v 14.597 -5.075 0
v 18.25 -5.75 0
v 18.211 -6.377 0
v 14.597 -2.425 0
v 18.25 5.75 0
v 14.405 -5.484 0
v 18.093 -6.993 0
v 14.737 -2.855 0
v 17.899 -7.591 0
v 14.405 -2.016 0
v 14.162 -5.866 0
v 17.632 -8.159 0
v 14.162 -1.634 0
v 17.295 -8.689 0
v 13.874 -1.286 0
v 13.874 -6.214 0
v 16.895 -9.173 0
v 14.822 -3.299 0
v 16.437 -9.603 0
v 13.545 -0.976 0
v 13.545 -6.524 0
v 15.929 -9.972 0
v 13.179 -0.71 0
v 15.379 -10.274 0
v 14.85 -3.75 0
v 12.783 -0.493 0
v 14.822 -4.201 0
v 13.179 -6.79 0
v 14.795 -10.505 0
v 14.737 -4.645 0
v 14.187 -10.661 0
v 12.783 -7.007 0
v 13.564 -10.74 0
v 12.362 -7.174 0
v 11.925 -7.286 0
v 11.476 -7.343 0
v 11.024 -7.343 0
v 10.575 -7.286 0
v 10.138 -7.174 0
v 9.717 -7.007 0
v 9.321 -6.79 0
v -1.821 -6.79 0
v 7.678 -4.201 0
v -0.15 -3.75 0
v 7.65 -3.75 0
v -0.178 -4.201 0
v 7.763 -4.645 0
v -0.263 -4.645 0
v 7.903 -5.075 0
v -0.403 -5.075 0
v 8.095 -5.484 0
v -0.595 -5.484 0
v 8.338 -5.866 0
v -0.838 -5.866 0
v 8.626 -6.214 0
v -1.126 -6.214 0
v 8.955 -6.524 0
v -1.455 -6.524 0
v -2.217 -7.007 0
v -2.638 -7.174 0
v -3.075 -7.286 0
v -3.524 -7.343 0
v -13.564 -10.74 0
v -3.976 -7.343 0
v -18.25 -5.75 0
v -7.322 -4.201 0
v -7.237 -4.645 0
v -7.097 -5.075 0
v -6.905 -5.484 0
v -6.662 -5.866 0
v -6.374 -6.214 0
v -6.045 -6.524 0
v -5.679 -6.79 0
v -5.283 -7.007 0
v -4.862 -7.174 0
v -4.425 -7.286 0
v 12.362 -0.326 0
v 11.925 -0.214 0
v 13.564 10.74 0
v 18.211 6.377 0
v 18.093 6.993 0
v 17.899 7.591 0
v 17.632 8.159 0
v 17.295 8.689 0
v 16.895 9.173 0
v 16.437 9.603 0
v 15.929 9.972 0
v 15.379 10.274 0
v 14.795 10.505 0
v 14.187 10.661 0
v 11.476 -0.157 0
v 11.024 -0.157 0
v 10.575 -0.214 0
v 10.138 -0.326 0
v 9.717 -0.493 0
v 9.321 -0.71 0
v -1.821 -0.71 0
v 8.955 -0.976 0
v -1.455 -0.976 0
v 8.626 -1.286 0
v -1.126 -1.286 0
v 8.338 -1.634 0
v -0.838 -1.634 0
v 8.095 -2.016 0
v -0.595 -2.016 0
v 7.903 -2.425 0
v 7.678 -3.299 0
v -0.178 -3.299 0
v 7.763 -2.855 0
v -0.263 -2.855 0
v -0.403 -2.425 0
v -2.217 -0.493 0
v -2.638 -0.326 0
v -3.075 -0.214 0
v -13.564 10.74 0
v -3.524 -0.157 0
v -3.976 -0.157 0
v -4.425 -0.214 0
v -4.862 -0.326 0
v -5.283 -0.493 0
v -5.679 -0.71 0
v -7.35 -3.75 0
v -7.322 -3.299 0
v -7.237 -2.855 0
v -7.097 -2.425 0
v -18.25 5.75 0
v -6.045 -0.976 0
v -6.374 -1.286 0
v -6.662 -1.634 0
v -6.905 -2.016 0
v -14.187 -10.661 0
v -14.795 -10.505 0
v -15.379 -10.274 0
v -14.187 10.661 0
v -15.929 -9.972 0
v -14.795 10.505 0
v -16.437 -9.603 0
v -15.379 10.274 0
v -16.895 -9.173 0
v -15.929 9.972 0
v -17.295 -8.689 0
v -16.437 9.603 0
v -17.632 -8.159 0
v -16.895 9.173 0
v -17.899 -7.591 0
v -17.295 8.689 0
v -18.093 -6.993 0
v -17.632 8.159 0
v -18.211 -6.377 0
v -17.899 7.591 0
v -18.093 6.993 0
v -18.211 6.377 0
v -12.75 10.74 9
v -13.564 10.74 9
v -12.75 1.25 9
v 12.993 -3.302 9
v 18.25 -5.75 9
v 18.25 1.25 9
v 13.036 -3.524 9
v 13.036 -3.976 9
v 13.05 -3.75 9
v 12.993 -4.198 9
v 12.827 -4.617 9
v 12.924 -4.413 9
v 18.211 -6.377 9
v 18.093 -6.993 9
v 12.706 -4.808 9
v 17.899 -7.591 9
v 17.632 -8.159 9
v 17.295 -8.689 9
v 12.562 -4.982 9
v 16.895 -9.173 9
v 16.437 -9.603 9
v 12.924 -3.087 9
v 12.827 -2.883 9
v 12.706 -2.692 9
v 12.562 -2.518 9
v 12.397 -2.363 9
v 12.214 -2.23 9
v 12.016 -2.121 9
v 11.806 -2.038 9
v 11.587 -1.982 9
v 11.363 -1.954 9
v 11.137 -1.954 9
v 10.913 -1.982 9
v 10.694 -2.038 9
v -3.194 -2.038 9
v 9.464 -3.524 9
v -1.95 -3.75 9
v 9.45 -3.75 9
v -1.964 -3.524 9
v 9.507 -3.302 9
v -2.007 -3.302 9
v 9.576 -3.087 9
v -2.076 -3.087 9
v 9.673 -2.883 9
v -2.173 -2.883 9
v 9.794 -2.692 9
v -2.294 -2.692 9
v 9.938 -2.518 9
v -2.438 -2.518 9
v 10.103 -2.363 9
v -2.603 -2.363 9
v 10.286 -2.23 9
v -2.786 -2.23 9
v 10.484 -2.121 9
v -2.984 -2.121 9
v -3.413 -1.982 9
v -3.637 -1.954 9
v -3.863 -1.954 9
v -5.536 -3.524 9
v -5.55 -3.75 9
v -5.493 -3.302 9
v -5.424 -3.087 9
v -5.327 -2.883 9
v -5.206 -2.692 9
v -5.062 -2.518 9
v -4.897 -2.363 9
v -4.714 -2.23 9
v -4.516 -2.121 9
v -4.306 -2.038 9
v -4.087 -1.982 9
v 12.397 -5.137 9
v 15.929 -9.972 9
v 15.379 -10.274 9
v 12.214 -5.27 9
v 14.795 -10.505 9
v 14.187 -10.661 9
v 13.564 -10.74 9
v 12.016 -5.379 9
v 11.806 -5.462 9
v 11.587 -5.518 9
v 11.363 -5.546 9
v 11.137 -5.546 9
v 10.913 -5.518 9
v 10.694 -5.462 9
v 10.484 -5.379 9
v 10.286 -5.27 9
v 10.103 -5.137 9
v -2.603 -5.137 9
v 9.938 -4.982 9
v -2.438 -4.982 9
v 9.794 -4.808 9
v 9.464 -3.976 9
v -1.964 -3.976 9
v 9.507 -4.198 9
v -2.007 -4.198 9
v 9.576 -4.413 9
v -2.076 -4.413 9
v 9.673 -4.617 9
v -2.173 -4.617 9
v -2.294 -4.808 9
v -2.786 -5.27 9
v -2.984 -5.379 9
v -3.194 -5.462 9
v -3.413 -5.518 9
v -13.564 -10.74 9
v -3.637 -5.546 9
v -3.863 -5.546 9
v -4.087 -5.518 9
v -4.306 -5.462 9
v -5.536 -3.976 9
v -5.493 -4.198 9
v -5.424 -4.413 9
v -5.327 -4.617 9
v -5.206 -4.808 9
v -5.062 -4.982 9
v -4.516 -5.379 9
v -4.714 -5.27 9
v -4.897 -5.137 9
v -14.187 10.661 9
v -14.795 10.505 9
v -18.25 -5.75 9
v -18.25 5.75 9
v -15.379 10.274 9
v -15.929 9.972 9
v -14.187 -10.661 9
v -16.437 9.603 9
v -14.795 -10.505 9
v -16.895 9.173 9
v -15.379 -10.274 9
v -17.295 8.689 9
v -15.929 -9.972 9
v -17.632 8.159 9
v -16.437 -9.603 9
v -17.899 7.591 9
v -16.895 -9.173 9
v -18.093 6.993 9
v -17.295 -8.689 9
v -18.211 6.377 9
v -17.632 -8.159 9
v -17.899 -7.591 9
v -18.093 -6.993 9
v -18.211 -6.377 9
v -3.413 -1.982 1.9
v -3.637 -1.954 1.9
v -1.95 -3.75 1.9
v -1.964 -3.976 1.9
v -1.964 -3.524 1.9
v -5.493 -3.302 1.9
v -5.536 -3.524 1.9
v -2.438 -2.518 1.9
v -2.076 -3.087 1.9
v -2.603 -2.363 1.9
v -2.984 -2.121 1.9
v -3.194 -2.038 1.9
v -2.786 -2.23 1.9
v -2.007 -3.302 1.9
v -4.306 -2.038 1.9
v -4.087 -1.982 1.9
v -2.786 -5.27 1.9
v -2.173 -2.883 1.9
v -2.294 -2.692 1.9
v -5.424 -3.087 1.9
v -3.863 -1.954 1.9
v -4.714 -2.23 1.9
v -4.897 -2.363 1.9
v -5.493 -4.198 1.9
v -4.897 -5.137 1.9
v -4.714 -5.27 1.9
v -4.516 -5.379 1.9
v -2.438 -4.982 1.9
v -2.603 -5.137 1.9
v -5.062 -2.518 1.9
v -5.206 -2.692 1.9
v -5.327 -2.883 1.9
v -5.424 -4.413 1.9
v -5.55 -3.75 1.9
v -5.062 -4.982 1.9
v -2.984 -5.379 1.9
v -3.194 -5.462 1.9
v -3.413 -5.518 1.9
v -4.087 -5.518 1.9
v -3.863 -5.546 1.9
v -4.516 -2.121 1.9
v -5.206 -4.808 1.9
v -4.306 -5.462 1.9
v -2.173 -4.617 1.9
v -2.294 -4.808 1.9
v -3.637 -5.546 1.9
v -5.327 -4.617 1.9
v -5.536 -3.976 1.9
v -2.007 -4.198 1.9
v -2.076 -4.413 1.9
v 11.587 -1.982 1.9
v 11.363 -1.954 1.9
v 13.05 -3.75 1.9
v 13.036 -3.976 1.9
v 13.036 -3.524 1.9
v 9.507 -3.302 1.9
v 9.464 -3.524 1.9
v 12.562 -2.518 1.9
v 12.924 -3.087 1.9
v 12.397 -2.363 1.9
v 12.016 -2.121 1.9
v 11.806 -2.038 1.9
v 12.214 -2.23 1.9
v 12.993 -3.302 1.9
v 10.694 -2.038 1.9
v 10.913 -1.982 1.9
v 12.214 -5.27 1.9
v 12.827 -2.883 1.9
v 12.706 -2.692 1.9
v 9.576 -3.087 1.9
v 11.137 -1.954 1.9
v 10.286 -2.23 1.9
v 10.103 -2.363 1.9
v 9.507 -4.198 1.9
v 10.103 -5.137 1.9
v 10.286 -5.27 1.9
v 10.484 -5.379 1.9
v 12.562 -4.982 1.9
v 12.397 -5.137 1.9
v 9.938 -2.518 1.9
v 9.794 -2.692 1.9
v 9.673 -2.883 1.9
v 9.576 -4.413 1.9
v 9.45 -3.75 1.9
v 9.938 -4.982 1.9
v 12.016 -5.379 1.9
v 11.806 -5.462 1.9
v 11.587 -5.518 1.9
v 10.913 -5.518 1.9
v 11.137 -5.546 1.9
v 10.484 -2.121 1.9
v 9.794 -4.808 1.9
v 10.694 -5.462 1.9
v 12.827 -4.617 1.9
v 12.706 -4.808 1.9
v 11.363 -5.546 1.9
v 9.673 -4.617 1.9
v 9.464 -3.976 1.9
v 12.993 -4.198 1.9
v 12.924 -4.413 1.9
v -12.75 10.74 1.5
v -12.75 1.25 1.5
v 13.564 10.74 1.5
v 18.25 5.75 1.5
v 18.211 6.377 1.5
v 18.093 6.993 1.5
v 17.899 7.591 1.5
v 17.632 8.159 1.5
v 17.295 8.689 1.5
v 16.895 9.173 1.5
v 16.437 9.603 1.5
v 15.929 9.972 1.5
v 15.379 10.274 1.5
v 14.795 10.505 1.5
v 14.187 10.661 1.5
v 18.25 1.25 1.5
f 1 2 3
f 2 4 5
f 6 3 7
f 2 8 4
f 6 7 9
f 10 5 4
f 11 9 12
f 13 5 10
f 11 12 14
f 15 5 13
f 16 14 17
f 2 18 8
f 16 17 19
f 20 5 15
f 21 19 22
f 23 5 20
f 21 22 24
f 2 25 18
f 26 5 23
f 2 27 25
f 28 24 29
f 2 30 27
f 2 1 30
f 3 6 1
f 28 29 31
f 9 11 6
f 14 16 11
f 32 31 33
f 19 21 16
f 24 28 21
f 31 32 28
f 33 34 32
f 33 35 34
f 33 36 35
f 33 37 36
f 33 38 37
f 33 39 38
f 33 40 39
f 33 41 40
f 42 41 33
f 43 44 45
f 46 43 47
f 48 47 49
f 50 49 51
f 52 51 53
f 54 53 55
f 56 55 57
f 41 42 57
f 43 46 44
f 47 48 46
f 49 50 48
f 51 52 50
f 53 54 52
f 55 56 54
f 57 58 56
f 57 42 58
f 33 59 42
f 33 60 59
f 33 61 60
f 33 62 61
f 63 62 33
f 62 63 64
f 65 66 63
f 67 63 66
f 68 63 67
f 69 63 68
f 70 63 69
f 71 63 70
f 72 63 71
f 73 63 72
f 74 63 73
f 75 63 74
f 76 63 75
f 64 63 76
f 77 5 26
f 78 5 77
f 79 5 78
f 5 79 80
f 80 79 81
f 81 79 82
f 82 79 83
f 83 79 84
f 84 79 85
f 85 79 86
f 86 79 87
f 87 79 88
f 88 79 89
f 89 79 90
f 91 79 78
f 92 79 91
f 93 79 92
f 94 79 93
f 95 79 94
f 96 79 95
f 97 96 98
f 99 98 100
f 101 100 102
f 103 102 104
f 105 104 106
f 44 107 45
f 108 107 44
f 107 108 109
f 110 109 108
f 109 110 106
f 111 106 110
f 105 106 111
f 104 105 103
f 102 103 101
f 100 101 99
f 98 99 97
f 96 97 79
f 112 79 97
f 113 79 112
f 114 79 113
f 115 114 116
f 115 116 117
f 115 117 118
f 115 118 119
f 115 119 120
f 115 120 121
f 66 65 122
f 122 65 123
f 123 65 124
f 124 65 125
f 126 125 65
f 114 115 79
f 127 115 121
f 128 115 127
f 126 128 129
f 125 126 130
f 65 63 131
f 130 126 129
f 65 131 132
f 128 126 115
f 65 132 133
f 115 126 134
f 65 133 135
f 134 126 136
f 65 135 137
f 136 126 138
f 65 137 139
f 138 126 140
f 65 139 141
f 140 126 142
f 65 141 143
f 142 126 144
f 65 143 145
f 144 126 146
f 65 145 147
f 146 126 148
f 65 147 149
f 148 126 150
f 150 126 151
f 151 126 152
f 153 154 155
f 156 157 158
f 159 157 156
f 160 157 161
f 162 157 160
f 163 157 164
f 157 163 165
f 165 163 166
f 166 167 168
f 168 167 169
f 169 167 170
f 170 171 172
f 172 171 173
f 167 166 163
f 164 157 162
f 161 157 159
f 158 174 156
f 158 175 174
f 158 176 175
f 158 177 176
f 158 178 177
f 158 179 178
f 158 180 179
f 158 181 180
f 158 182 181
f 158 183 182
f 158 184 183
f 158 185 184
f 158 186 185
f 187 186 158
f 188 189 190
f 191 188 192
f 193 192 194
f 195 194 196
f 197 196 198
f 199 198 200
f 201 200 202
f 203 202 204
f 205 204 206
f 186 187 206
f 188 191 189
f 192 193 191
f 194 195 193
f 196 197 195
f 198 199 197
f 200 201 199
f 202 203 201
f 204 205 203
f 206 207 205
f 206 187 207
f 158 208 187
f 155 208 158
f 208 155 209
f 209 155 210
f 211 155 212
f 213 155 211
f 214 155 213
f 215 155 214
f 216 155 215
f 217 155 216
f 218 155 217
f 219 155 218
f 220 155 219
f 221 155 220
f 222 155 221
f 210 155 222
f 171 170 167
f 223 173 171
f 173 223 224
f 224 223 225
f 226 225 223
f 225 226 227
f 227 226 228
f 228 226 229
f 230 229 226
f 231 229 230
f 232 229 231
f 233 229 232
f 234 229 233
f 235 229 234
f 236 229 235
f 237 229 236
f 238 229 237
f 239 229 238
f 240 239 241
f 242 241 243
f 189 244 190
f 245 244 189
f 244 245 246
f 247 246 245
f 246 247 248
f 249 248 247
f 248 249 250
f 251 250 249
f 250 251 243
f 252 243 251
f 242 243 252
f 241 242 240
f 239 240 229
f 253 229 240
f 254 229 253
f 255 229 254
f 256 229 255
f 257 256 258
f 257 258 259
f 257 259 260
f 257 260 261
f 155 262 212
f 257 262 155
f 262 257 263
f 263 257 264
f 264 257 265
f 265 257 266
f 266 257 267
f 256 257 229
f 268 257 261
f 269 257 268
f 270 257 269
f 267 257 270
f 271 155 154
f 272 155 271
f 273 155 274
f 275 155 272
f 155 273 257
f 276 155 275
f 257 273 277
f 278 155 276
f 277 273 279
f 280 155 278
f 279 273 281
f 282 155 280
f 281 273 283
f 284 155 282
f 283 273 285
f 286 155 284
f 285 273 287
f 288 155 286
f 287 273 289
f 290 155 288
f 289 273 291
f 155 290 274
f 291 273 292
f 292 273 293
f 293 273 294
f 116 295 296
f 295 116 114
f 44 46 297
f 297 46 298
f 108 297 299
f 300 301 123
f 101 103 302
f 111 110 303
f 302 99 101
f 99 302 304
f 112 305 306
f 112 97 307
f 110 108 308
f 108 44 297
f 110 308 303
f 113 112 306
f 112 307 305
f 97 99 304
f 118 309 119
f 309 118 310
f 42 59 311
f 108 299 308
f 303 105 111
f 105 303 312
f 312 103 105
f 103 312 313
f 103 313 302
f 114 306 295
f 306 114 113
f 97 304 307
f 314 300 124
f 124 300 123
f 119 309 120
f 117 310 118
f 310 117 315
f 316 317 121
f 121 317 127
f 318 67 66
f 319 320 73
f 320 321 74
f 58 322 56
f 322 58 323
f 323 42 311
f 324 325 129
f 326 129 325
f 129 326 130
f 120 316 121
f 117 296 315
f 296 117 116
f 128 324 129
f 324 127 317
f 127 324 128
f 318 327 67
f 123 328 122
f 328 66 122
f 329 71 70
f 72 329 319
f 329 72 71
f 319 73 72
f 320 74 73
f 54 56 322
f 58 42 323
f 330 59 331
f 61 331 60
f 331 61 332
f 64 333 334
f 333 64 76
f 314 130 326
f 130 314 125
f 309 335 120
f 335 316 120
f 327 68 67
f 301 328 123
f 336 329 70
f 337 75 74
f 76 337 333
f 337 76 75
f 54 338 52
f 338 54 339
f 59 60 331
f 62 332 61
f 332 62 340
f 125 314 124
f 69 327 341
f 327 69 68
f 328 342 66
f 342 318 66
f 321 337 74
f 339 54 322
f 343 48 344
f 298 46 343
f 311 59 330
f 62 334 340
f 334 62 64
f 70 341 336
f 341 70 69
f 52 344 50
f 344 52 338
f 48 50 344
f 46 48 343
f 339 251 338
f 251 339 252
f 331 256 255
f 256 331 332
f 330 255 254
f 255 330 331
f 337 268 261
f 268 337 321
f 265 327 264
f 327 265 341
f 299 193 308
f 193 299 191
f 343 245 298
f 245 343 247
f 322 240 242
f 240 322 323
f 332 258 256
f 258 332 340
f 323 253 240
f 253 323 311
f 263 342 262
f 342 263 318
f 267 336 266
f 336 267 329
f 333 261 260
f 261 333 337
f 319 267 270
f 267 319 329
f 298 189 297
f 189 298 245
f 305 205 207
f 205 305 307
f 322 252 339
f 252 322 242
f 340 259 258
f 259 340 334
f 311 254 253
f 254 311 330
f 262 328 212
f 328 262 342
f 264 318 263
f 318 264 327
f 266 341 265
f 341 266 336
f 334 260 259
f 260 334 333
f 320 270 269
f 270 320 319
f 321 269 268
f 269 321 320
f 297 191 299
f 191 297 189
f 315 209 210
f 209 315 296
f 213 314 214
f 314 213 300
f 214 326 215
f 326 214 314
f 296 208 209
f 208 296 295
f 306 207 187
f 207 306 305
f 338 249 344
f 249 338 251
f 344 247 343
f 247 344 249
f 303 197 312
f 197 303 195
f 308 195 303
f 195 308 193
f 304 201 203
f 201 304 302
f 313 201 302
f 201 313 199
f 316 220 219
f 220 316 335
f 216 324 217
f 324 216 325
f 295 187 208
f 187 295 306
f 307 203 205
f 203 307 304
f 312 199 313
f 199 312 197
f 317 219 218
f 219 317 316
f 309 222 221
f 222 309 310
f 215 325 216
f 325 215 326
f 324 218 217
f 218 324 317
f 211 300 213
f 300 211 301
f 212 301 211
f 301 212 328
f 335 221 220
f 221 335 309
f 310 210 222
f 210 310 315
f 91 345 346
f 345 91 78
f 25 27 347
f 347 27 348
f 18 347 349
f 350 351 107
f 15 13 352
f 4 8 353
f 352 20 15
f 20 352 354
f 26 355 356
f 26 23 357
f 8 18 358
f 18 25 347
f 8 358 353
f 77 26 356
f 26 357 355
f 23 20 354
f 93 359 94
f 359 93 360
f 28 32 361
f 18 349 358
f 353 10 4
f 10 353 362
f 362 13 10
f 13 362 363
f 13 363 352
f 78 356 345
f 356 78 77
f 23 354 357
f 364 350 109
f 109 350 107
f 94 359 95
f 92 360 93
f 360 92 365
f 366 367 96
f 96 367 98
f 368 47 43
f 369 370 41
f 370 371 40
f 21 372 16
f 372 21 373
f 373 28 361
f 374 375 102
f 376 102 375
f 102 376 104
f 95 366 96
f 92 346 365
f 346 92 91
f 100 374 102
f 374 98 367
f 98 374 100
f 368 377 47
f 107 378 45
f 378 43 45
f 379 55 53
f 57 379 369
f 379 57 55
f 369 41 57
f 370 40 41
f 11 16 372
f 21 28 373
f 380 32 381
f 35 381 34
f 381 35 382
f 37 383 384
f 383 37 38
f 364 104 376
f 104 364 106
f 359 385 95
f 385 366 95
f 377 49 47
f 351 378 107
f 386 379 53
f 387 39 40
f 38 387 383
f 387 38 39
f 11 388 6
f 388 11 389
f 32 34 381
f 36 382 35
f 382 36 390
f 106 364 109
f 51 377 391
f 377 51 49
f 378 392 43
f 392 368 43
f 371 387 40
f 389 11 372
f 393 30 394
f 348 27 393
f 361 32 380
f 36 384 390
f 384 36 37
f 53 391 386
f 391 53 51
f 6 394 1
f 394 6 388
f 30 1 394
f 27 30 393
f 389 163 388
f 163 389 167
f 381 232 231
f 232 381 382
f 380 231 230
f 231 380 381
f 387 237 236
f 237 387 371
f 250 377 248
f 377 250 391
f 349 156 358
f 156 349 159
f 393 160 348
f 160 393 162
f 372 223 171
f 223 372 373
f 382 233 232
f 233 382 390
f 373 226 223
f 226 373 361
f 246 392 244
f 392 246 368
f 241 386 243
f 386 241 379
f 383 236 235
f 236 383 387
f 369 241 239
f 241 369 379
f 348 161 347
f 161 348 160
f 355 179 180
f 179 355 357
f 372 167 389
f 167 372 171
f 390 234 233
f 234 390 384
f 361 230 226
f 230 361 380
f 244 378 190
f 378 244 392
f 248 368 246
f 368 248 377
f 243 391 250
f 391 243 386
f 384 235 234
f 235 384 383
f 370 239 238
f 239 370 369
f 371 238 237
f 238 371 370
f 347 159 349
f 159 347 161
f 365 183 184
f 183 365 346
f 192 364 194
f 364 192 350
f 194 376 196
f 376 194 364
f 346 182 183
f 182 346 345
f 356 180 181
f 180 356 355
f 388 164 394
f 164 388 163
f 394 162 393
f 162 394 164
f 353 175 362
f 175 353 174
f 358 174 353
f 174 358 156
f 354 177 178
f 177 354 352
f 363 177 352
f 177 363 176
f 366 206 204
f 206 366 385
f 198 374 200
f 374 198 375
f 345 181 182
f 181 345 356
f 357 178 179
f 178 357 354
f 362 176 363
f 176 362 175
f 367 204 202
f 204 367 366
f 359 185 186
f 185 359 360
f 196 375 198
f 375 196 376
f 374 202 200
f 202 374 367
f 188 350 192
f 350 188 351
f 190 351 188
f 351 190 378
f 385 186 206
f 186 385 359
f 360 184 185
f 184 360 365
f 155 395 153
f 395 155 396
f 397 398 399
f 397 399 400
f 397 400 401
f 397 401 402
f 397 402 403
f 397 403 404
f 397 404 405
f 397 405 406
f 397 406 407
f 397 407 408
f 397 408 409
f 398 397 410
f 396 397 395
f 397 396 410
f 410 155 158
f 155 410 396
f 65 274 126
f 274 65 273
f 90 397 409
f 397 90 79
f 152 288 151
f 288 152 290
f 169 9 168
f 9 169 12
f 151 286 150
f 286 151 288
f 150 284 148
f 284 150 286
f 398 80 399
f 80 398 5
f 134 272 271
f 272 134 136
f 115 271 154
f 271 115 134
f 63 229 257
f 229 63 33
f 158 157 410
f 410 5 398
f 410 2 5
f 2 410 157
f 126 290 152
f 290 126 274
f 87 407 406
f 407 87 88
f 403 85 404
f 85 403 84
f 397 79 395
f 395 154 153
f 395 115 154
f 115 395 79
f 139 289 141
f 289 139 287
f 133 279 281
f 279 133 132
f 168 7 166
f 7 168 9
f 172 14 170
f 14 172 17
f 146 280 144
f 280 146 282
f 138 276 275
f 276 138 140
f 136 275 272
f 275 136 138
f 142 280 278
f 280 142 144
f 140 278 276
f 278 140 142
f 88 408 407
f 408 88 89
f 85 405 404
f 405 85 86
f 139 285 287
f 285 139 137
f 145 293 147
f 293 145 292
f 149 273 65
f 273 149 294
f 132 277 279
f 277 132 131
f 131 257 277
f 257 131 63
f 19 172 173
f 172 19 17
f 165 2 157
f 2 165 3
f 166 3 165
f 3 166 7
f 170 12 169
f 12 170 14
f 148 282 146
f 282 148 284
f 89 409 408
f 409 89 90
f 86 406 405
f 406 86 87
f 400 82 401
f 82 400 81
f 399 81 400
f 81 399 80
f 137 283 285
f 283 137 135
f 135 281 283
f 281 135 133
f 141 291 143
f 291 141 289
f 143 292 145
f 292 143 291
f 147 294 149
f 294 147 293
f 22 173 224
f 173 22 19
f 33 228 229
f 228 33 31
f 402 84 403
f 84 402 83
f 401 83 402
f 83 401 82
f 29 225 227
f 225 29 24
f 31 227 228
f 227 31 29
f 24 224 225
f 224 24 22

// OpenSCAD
$fn = 50;


difference() {
	union() {
		hull() {
			translate(v = [-13.2500000000, 5.7500000000, 0]) {
				cylinder(h = 9, r = 5);
			}
			translate(v = [13.2500000000, 5.7500000000, 0]) {
				cylinder(h = 9, r = 5);
			}
			translate(v = [-13.2500000000, -5.7500000000, 0]) {
				cylinder(h = 9, r = 5);
			}
			translate(v = [13.2500000000, -5.7500000000, 0]) {
				cylinder(h = 9, r = 5);
			}
		}
	}
	union() {
		translate(v = [-3.7500000000, -3.7500000000, 0]) {
			rotate(a = [180, 0, 0]) {
				difference() {
					union() {
						#translate(v = [0, 0, -9.0000000000]) {
							cylinder(h = 9, r = 1.5000000000);
						}
						#translate(v = [0, 0, -1.9000000000]) {
							cylinder(h = 1.9000000000, r1 = 1.8000000000, r2 = 3.6000000000);
						}
						#translate(v = [0, 0, -9.0000000000]) {
							cylinder(h = 9, r = 1.8000000000);
						}
						#translate(v = [0, 0, -9.0000000000]) {
							cylinder(h = 9, r = 1.5000000000);
						}
					}
					union();
				}
			}
		}
		translate(v = [11.2500000000, -3.7500000000, 0]) {
			rotate(a = [180, 0, 0]) {
				difference() {
					union() {
						#translate(v = [0, 0, -9.0000000000]) {
							cylinder(h = 9, r = 1.5000000000);
						}
						#translate(v = [0, 0, -1.9000000000]) {
							cylinder(h = 1.9000000000, r1 = 1.8000000000, r2 = 3.6000000000);
						}
						#translate(v = [0, 0, -9.0000000000]) {
							cylinder(h = 9, r = 1.8000000000);
						}
						#translate(v = [0, 0, -9.0000000000]) {
							cylinder(h = 9, r = 1.5000000000);
						}
					}
					union();
				}
			}
		}
		#translate(v = [-12.7500000000, 1.2500000000, 1.5000000000]) {
			cube(size = [153, 100, 7.5000000000]);
		}
	}
}
